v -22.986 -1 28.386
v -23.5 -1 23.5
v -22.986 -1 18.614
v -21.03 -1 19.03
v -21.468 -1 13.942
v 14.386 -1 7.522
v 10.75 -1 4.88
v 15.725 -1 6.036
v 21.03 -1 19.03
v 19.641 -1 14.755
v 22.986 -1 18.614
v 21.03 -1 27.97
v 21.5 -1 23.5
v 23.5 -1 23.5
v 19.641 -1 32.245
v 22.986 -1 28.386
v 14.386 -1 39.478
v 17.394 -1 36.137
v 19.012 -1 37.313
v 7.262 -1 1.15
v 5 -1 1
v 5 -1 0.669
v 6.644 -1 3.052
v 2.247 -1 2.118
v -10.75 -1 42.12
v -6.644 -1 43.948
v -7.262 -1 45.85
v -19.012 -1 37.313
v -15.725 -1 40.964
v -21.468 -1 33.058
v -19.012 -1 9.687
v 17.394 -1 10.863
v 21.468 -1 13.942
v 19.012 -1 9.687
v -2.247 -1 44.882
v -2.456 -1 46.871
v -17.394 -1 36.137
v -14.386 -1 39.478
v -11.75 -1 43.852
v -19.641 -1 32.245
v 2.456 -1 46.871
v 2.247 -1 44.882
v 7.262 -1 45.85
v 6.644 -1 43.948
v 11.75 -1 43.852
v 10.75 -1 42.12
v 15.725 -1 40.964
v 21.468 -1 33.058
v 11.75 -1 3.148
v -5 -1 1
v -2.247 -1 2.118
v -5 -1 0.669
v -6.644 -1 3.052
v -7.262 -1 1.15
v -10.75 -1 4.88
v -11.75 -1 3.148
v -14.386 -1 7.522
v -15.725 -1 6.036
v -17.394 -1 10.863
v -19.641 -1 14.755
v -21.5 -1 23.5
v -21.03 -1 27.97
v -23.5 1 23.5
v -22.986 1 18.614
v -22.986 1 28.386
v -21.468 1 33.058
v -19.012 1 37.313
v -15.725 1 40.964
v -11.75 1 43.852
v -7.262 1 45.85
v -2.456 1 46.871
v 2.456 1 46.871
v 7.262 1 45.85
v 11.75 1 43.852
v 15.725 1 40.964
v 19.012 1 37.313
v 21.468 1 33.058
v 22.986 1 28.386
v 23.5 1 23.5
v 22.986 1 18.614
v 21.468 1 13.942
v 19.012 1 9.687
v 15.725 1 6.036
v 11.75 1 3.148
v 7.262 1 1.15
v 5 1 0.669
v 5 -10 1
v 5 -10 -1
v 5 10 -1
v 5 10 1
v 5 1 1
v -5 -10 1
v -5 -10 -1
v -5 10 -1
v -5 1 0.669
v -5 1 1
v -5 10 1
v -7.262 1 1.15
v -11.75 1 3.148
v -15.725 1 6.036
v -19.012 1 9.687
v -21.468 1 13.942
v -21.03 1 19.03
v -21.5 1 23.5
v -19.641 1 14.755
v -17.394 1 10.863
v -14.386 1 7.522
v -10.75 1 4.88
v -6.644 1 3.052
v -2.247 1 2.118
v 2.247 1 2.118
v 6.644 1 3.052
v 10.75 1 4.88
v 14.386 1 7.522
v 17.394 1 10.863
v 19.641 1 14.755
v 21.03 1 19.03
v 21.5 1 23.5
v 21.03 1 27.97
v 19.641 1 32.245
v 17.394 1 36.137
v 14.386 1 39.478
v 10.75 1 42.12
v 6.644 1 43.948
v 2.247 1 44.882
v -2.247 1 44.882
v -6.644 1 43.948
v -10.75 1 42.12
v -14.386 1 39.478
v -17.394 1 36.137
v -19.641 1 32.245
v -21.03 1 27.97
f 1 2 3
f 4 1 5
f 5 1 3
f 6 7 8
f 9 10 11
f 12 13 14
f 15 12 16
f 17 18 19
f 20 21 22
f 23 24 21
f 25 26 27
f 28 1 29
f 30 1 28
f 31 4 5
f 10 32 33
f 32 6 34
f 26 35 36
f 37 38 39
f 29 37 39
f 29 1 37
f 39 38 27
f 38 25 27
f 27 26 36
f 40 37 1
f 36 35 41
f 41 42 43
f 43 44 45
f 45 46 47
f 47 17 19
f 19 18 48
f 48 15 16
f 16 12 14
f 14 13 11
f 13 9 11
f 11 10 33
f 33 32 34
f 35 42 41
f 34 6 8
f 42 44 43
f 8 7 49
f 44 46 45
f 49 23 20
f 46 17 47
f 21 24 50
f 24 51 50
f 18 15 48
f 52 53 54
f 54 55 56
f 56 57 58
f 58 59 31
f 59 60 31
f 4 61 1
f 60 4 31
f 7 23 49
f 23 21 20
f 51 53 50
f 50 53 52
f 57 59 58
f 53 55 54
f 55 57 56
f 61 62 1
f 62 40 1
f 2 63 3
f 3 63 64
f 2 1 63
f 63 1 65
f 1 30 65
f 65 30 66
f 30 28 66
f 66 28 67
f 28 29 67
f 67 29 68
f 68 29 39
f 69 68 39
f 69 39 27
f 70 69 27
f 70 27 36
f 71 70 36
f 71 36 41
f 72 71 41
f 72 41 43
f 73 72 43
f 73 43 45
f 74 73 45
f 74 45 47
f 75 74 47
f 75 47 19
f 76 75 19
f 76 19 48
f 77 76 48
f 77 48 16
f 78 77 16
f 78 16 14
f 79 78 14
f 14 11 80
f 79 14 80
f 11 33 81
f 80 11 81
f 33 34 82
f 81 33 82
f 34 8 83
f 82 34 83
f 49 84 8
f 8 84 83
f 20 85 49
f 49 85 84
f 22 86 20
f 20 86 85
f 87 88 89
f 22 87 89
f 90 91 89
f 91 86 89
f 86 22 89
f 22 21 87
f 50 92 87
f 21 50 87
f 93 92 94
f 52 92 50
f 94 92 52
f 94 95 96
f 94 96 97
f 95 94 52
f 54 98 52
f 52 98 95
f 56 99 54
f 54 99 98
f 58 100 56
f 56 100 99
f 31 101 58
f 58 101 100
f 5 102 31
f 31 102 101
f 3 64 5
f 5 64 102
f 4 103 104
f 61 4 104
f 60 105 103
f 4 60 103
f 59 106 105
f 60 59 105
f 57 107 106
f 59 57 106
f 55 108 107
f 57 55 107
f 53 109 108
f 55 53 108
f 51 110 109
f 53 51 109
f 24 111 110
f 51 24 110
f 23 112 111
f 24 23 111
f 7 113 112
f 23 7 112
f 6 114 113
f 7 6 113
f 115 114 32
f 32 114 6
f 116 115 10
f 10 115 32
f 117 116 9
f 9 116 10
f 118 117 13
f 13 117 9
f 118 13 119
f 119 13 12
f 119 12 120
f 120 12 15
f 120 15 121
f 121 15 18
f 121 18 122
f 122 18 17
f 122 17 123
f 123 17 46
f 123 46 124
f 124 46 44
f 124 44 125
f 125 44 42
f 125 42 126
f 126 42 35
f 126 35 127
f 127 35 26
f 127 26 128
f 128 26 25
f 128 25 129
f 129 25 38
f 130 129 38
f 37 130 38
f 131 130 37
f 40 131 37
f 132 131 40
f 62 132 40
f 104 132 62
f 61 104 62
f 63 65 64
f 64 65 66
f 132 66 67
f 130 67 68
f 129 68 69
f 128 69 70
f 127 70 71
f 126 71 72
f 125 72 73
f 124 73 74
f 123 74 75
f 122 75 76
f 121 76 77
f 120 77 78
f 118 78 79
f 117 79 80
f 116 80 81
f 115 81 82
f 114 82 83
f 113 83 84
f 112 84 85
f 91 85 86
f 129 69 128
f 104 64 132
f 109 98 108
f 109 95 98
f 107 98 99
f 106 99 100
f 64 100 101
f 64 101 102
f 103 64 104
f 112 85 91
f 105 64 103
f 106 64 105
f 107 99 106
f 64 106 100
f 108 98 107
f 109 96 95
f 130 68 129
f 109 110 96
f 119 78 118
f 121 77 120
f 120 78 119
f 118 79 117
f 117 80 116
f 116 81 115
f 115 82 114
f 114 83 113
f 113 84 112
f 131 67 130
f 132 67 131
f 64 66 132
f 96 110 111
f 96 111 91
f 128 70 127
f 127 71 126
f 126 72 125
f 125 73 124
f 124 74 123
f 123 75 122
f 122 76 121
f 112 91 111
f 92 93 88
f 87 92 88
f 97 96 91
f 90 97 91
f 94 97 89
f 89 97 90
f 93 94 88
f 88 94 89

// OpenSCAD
// cylinder 97mm long, 25.5mm radius
// cylinder 11.5mm radius

bottle_r = 21.5;
neck_r = 11.5;

// cylinder(r=bottle_r,h=97,center=true);
// translate([0,0,(97+10)/2])
// 	cylinder(r=neck_r,h=10,center=true);

cube([10,20,2],center=true);
translate([0,0,bottle_r+2])
	rotate([90,0,0])
		difference() {
			cylinder(r=bottle_r+2,h=2,center=true);
			cylinder(r=bottle_r,h=3,center=true);
		}
